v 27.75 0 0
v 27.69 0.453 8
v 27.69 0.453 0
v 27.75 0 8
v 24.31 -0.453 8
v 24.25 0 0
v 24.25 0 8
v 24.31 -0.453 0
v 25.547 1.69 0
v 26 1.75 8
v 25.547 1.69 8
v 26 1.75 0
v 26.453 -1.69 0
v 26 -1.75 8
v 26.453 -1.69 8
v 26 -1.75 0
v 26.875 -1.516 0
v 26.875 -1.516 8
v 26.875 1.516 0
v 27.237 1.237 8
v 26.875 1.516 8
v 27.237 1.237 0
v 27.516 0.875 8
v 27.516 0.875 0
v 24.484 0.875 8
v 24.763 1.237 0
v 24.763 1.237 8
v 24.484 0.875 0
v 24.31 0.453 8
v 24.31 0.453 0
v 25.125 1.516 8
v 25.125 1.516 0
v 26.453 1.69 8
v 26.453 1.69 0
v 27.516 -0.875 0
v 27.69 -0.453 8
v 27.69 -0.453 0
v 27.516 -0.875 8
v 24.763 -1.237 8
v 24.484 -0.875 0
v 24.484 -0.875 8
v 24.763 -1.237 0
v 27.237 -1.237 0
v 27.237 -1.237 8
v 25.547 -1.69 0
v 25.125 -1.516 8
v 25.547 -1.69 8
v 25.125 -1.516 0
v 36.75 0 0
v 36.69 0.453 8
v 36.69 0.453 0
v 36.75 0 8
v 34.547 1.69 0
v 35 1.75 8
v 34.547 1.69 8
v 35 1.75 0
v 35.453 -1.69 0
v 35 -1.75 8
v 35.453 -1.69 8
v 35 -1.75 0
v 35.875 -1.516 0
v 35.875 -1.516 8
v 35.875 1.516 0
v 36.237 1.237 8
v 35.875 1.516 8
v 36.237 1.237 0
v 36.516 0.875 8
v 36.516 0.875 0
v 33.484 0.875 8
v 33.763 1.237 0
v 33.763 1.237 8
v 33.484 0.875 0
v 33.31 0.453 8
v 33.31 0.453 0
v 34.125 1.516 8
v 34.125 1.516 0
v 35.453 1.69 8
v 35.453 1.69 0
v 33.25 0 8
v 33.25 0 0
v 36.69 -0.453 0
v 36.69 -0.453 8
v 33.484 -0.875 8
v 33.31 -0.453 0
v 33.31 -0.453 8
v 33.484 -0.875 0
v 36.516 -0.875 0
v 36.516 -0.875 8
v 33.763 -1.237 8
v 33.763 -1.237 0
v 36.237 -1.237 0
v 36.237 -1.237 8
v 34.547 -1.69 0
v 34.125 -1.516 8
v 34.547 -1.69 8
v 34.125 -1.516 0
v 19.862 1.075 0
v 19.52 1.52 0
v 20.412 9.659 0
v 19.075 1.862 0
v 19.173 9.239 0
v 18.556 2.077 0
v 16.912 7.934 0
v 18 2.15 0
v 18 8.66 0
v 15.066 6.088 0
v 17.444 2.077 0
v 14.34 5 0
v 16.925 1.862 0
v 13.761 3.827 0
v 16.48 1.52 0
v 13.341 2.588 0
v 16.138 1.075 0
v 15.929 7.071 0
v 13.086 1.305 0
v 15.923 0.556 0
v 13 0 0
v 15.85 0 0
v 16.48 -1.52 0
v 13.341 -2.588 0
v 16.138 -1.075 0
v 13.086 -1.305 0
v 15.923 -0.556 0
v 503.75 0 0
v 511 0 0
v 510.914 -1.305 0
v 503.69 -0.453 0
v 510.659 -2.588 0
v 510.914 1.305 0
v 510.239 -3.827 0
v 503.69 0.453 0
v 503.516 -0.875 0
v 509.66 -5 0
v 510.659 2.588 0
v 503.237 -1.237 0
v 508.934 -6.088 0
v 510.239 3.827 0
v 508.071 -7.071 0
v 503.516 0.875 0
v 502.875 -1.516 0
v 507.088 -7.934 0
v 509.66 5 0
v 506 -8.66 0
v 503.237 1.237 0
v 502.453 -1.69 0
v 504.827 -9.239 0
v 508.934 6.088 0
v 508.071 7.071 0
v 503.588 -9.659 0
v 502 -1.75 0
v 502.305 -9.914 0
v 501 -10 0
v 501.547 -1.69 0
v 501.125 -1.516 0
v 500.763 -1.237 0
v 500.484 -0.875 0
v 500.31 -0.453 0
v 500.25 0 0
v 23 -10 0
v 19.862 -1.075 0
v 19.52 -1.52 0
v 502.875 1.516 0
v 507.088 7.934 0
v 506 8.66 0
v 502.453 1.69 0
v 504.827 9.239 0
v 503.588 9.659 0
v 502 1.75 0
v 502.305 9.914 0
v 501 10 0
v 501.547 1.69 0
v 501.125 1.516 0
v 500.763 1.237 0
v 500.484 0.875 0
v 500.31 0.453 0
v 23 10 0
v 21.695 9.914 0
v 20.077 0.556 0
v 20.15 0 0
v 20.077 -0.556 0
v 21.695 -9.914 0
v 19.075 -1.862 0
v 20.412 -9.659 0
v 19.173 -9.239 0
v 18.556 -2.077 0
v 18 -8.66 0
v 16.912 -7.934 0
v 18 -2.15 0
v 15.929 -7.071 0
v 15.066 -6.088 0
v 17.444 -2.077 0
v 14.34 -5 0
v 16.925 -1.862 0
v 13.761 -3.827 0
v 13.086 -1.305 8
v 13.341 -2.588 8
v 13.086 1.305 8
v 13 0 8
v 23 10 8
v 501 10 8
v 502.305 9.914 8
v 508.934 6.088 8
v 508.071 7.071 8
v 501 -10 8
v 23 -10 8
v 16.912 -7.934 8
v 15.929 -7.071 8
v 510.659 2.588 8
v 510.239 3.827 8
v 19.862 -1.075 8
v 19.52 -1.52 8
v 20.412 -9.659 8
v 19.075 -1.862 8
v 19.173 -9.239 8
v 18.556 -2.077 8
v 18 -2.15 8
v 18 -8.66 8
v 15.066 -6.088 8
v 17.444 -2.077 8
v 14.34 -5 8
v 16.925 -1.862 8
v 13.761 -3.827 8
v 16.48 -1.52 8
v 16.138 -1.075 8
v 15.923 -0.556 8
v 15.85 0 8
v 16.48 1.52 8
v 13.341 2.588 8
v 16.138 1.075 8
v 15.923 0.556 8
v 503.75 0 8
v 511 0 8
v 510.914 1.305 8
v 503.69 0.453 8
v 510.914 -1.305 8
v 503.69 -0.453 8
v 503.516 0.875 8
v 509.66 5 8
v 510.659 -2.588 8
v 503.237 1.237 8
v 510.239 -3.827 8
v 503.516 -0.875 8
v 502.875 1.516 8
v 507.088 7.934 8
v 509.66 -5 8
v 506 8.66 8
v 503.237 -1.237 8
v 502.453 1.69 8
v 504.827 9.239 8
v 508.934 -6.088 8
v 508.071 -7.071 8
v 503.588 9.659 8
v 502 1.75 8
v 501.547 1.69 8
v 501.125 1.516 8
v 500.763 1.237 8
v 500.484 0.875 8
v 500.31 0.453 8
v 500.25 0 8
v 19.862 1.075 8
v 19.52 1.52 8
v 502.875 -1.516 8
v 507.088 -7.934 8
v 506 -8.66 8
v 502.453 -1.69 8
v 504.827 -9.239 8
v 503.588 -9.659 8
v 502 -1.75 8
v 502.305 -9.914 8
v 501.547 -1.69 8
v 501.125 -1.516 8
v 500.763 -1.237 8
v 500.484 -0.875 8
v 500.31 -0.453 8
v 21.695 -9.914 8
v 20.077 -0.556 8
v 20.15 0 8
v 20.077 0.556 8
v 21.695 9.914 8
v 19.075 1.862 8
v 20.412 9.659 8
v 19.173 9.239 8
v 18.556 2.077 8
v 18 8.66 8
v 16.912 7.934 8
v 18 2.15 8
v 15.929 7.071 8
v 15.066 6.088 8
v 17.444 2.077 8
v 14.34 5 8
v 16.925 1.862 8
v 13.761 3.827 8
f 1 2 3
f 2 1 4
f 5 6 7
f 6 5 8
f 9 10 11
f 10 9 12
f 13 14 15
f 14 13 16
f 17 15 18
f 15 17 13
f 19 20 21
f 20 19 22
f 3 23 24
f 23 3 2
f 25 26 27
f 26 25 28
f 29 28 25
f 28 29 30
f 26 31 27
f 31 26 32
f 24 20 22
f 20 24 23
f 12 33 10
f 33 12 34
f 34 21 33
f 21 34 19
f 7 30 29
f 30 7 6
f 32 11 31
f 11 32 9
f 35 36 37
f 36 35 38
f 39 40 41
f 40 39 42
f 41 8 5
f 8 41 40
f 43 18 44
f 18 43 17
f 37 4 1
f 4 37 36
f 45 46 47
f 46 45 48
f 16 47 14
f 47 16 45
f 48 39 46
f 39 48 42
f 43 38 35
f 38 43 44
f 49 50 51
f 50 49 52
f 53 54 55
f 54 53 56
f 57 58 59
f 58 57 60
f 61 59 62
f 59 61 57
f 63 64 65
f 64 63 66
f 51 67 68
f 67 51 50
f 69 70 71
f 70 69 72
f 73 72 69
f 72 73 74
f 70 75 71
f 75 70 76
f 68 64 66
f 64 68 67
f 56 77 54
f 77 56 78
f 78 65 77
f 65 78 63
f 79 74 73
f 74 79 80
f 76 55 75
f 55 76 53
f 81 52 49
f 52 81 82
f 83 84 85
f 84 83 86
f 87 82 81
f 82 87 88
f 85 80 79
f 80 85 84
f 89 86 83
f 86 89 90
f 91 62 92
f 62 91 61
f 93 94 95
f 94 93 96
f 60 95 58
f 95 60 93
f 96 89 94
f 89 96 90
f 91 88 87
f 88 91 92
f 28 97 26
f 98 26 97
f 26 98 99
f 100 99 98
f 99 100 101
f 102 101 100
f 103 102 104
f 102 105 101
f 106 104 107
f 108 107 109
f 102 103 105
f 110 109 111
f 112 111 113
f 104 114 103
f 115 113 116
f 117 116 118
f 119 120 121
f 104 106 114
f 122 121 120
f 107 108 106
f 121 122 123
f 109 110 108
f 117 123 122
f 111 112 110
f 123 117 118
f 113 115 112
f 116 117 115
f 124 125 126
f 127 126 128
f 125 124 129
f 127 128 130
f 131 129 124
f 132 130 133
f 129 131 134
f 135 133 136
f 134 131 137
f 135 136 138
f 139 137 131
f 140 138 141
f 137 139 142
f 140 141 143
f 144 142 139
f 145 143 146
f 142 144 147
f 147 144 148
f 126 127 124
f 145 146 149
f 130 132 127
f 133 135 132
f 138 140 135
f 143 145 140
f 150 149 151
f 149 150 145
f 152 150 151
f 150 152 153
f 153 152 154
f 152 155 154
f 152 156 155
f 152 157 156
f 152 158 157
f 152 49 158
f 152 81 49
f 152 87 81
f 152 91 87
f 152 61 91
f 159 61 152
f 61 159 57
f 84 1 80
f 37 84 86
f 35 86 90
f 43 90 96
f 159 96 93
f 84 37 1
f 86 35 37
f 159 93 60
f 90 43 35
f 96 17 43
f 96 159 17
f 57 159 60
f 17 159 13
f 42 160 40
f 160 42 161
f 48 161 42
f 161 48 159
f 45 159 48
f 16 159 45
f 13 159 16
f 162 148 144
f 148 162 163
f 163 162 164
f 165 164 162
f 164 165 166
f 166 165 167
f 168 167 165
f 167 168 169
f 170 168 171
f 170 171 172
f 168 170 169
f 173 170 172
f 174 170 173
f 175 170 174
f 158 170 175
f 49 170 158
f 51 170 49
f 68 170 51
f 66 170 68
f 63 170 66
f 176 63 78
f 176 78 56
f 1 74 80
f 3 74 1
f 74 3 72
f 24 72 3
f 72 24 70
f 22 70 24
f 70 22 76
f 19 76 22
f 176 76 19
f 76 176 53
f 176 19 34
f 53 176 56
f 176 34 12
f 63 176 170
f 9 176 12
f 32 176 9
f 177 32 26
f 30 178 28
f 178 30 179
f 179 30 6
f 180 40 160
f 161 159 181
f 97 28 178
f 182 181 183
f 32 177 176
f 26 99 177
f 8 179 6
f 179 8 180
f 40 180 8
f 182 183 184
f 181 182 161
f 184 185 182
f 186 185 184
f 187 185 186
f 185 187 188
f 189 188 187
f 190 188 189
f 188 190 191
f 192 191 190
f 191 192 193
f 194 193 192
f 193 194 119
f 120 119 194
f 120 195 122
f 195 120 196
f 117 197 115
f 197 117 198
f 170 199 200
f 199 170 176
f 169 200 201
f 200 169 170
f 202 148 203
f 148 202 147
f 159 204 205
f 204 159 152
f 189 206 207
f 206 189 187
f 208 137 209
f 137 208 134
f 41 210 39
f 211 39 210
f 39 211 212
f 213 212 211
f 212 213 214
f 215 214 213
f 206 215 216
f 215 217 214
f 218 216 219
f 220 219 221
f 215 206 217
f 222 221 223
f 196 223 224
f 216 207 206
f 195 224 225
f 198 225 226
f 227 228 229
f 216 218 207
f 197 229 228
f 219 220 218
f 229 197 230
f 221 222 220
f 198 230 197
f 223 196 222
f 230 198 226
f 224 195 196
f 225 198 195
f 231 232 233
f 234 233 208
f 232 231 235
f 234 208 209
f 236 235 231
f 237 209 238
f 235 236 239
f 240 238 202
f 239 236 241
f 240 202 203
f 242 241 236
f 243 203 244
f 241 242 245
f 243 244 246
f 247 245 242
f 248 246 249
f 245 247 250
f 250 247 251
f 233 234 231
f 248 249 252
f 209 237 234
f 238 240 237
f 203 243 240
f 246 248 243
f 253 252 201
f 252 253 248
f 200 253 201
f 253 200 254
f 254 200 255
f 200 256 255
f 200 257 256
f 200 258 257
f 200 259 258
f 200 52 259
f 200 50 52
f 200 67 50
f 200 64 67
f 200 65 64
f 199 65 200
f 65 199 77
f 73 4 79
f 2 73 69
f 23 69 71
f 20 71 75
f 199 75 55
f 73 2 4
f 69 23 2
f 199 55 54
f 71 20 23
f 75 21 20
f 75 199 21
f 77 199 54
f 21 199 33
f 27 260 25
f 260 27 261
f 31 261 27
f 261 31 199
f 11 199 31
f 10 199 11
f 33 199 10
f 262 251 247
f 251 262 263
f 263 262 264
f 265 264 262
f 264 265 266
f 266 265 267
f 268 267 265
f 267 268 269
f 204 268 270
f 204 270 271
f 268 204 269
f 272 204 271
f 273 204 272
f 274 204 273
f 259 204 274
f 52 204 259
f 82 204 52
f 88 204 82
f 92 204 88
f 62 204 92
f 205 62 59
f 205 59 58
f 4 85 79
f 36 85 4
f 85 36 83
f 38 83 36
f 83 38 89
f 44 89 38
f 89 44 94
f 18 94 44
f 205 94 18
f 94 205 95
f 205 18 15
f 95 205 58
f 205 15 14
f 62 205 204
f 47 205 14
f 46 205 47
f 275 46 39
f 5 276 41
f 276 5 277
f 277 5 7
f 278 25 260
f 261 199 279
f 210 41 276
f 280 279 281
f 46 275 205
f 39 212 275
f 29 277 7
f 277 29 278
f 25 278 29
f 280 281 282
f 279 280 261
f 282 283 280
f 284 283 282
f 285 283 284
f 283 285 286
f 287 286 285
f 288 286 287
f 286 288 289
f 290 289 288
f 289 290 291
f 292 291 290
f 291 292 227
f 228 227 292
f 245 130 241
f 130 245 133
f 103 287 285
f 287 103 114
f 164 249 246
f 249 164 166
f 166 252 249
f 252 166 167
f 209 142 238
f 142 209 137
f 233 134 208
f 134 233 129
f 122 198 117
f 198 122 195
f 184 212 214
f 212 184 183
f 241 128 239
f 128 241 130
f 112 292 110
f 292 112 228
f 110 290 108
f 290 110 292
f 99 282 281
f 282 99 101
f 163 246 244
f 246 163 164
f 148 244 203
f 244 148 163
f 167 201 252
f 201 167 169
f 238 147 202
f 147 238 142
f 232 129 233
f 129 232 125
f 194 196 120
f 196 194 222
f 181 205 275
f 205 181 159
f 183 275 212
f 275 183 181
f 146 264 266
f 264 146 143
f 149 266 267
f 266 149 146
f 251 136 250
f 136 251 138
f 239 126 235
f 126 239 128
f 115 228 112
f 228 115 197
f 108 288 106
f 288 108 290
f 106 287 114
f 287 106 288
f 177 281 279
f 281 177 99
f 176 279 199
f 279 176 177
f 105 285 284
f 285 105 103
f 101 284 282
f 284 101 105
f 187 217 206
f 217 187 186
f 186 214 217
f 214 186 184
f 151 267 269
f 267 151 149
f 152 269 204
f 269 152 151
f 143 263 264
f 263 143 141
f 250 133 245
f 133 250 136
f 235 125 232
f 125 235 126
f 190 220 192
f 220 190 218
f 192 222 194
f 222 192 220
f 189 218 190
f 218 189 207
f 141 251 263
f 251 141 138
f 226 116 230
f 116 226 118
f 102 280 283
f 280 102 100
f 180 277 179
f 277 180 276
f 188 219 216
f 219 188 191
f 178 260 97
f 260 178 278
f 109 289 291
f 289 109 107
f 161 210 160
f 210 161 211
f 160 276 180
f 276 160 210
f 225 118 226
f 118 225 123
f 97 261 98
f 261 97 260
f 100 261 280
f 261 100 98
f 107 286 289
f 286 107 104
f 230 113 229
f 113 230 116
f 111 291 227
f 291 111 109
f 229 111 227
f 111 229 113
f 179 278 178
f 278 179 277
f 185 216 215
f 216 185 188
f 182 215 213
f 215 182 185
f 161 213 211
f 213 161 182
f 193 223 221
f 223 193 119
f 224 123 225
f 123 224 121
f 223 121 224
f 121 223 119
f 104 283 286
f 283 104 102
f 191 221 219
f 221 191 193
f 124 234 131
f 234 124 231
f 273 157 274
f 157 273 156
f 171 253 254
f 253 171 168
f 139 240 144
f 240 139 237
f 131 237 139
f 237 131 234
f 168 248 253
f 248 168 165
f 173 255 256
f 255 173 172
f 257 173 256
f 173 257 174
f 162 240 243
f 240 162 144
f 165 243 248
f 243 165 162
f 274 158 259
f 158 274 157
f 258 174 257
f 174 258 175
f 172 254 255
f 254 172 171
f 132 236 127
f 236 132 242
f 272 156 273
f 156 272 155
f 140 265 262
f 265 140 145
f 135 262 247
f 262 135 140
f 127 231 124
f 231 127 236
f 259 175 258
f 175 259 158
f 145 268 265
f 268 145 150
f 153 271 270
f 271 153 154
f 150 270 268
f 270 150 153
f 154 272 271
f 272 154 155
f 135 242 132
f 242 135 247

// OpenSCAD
// Gen-EE — TOP SPIDER ARM one-piece ASSEMBLY REFERENCE (2026-11-05). At R>=400 this exceeds the 410 mm bed —
// PRINT spider_arm_inner.stl + spider_arm_outer.stl (x3 of each) and bolt at the mid-span splice. This file is for fit checks only.
include <parameters.scad>;
$fn = 48;
arm_r0 = 13.0;
arm_r1 = flange_bolt_r + 9.0;
difference() {
    hull() {
        translate([arm_r0 + arm_w / 2, 0, 0]) cylinder(d=arm_w, h=arm_t);
        translate([arm_r1 - arm_w / 2, 0, 0]) cylinder(d=arm_w, h=arm_t);
    }
    for (r = arm_bolt_r) translate([r, 0, -0.1]) cylinder(d=m3_clear, h=arm_t + 1, $fn=24);
    translate([brace_r, 0, -0.1]) cylinder(d=brace_d, h=arm_t + 1, $fn=24);
    translate([flange_bolt_r, 0, -0.1]) cylinder(d=m3_clear, h=arm_t + 1, $fn=24);
}
